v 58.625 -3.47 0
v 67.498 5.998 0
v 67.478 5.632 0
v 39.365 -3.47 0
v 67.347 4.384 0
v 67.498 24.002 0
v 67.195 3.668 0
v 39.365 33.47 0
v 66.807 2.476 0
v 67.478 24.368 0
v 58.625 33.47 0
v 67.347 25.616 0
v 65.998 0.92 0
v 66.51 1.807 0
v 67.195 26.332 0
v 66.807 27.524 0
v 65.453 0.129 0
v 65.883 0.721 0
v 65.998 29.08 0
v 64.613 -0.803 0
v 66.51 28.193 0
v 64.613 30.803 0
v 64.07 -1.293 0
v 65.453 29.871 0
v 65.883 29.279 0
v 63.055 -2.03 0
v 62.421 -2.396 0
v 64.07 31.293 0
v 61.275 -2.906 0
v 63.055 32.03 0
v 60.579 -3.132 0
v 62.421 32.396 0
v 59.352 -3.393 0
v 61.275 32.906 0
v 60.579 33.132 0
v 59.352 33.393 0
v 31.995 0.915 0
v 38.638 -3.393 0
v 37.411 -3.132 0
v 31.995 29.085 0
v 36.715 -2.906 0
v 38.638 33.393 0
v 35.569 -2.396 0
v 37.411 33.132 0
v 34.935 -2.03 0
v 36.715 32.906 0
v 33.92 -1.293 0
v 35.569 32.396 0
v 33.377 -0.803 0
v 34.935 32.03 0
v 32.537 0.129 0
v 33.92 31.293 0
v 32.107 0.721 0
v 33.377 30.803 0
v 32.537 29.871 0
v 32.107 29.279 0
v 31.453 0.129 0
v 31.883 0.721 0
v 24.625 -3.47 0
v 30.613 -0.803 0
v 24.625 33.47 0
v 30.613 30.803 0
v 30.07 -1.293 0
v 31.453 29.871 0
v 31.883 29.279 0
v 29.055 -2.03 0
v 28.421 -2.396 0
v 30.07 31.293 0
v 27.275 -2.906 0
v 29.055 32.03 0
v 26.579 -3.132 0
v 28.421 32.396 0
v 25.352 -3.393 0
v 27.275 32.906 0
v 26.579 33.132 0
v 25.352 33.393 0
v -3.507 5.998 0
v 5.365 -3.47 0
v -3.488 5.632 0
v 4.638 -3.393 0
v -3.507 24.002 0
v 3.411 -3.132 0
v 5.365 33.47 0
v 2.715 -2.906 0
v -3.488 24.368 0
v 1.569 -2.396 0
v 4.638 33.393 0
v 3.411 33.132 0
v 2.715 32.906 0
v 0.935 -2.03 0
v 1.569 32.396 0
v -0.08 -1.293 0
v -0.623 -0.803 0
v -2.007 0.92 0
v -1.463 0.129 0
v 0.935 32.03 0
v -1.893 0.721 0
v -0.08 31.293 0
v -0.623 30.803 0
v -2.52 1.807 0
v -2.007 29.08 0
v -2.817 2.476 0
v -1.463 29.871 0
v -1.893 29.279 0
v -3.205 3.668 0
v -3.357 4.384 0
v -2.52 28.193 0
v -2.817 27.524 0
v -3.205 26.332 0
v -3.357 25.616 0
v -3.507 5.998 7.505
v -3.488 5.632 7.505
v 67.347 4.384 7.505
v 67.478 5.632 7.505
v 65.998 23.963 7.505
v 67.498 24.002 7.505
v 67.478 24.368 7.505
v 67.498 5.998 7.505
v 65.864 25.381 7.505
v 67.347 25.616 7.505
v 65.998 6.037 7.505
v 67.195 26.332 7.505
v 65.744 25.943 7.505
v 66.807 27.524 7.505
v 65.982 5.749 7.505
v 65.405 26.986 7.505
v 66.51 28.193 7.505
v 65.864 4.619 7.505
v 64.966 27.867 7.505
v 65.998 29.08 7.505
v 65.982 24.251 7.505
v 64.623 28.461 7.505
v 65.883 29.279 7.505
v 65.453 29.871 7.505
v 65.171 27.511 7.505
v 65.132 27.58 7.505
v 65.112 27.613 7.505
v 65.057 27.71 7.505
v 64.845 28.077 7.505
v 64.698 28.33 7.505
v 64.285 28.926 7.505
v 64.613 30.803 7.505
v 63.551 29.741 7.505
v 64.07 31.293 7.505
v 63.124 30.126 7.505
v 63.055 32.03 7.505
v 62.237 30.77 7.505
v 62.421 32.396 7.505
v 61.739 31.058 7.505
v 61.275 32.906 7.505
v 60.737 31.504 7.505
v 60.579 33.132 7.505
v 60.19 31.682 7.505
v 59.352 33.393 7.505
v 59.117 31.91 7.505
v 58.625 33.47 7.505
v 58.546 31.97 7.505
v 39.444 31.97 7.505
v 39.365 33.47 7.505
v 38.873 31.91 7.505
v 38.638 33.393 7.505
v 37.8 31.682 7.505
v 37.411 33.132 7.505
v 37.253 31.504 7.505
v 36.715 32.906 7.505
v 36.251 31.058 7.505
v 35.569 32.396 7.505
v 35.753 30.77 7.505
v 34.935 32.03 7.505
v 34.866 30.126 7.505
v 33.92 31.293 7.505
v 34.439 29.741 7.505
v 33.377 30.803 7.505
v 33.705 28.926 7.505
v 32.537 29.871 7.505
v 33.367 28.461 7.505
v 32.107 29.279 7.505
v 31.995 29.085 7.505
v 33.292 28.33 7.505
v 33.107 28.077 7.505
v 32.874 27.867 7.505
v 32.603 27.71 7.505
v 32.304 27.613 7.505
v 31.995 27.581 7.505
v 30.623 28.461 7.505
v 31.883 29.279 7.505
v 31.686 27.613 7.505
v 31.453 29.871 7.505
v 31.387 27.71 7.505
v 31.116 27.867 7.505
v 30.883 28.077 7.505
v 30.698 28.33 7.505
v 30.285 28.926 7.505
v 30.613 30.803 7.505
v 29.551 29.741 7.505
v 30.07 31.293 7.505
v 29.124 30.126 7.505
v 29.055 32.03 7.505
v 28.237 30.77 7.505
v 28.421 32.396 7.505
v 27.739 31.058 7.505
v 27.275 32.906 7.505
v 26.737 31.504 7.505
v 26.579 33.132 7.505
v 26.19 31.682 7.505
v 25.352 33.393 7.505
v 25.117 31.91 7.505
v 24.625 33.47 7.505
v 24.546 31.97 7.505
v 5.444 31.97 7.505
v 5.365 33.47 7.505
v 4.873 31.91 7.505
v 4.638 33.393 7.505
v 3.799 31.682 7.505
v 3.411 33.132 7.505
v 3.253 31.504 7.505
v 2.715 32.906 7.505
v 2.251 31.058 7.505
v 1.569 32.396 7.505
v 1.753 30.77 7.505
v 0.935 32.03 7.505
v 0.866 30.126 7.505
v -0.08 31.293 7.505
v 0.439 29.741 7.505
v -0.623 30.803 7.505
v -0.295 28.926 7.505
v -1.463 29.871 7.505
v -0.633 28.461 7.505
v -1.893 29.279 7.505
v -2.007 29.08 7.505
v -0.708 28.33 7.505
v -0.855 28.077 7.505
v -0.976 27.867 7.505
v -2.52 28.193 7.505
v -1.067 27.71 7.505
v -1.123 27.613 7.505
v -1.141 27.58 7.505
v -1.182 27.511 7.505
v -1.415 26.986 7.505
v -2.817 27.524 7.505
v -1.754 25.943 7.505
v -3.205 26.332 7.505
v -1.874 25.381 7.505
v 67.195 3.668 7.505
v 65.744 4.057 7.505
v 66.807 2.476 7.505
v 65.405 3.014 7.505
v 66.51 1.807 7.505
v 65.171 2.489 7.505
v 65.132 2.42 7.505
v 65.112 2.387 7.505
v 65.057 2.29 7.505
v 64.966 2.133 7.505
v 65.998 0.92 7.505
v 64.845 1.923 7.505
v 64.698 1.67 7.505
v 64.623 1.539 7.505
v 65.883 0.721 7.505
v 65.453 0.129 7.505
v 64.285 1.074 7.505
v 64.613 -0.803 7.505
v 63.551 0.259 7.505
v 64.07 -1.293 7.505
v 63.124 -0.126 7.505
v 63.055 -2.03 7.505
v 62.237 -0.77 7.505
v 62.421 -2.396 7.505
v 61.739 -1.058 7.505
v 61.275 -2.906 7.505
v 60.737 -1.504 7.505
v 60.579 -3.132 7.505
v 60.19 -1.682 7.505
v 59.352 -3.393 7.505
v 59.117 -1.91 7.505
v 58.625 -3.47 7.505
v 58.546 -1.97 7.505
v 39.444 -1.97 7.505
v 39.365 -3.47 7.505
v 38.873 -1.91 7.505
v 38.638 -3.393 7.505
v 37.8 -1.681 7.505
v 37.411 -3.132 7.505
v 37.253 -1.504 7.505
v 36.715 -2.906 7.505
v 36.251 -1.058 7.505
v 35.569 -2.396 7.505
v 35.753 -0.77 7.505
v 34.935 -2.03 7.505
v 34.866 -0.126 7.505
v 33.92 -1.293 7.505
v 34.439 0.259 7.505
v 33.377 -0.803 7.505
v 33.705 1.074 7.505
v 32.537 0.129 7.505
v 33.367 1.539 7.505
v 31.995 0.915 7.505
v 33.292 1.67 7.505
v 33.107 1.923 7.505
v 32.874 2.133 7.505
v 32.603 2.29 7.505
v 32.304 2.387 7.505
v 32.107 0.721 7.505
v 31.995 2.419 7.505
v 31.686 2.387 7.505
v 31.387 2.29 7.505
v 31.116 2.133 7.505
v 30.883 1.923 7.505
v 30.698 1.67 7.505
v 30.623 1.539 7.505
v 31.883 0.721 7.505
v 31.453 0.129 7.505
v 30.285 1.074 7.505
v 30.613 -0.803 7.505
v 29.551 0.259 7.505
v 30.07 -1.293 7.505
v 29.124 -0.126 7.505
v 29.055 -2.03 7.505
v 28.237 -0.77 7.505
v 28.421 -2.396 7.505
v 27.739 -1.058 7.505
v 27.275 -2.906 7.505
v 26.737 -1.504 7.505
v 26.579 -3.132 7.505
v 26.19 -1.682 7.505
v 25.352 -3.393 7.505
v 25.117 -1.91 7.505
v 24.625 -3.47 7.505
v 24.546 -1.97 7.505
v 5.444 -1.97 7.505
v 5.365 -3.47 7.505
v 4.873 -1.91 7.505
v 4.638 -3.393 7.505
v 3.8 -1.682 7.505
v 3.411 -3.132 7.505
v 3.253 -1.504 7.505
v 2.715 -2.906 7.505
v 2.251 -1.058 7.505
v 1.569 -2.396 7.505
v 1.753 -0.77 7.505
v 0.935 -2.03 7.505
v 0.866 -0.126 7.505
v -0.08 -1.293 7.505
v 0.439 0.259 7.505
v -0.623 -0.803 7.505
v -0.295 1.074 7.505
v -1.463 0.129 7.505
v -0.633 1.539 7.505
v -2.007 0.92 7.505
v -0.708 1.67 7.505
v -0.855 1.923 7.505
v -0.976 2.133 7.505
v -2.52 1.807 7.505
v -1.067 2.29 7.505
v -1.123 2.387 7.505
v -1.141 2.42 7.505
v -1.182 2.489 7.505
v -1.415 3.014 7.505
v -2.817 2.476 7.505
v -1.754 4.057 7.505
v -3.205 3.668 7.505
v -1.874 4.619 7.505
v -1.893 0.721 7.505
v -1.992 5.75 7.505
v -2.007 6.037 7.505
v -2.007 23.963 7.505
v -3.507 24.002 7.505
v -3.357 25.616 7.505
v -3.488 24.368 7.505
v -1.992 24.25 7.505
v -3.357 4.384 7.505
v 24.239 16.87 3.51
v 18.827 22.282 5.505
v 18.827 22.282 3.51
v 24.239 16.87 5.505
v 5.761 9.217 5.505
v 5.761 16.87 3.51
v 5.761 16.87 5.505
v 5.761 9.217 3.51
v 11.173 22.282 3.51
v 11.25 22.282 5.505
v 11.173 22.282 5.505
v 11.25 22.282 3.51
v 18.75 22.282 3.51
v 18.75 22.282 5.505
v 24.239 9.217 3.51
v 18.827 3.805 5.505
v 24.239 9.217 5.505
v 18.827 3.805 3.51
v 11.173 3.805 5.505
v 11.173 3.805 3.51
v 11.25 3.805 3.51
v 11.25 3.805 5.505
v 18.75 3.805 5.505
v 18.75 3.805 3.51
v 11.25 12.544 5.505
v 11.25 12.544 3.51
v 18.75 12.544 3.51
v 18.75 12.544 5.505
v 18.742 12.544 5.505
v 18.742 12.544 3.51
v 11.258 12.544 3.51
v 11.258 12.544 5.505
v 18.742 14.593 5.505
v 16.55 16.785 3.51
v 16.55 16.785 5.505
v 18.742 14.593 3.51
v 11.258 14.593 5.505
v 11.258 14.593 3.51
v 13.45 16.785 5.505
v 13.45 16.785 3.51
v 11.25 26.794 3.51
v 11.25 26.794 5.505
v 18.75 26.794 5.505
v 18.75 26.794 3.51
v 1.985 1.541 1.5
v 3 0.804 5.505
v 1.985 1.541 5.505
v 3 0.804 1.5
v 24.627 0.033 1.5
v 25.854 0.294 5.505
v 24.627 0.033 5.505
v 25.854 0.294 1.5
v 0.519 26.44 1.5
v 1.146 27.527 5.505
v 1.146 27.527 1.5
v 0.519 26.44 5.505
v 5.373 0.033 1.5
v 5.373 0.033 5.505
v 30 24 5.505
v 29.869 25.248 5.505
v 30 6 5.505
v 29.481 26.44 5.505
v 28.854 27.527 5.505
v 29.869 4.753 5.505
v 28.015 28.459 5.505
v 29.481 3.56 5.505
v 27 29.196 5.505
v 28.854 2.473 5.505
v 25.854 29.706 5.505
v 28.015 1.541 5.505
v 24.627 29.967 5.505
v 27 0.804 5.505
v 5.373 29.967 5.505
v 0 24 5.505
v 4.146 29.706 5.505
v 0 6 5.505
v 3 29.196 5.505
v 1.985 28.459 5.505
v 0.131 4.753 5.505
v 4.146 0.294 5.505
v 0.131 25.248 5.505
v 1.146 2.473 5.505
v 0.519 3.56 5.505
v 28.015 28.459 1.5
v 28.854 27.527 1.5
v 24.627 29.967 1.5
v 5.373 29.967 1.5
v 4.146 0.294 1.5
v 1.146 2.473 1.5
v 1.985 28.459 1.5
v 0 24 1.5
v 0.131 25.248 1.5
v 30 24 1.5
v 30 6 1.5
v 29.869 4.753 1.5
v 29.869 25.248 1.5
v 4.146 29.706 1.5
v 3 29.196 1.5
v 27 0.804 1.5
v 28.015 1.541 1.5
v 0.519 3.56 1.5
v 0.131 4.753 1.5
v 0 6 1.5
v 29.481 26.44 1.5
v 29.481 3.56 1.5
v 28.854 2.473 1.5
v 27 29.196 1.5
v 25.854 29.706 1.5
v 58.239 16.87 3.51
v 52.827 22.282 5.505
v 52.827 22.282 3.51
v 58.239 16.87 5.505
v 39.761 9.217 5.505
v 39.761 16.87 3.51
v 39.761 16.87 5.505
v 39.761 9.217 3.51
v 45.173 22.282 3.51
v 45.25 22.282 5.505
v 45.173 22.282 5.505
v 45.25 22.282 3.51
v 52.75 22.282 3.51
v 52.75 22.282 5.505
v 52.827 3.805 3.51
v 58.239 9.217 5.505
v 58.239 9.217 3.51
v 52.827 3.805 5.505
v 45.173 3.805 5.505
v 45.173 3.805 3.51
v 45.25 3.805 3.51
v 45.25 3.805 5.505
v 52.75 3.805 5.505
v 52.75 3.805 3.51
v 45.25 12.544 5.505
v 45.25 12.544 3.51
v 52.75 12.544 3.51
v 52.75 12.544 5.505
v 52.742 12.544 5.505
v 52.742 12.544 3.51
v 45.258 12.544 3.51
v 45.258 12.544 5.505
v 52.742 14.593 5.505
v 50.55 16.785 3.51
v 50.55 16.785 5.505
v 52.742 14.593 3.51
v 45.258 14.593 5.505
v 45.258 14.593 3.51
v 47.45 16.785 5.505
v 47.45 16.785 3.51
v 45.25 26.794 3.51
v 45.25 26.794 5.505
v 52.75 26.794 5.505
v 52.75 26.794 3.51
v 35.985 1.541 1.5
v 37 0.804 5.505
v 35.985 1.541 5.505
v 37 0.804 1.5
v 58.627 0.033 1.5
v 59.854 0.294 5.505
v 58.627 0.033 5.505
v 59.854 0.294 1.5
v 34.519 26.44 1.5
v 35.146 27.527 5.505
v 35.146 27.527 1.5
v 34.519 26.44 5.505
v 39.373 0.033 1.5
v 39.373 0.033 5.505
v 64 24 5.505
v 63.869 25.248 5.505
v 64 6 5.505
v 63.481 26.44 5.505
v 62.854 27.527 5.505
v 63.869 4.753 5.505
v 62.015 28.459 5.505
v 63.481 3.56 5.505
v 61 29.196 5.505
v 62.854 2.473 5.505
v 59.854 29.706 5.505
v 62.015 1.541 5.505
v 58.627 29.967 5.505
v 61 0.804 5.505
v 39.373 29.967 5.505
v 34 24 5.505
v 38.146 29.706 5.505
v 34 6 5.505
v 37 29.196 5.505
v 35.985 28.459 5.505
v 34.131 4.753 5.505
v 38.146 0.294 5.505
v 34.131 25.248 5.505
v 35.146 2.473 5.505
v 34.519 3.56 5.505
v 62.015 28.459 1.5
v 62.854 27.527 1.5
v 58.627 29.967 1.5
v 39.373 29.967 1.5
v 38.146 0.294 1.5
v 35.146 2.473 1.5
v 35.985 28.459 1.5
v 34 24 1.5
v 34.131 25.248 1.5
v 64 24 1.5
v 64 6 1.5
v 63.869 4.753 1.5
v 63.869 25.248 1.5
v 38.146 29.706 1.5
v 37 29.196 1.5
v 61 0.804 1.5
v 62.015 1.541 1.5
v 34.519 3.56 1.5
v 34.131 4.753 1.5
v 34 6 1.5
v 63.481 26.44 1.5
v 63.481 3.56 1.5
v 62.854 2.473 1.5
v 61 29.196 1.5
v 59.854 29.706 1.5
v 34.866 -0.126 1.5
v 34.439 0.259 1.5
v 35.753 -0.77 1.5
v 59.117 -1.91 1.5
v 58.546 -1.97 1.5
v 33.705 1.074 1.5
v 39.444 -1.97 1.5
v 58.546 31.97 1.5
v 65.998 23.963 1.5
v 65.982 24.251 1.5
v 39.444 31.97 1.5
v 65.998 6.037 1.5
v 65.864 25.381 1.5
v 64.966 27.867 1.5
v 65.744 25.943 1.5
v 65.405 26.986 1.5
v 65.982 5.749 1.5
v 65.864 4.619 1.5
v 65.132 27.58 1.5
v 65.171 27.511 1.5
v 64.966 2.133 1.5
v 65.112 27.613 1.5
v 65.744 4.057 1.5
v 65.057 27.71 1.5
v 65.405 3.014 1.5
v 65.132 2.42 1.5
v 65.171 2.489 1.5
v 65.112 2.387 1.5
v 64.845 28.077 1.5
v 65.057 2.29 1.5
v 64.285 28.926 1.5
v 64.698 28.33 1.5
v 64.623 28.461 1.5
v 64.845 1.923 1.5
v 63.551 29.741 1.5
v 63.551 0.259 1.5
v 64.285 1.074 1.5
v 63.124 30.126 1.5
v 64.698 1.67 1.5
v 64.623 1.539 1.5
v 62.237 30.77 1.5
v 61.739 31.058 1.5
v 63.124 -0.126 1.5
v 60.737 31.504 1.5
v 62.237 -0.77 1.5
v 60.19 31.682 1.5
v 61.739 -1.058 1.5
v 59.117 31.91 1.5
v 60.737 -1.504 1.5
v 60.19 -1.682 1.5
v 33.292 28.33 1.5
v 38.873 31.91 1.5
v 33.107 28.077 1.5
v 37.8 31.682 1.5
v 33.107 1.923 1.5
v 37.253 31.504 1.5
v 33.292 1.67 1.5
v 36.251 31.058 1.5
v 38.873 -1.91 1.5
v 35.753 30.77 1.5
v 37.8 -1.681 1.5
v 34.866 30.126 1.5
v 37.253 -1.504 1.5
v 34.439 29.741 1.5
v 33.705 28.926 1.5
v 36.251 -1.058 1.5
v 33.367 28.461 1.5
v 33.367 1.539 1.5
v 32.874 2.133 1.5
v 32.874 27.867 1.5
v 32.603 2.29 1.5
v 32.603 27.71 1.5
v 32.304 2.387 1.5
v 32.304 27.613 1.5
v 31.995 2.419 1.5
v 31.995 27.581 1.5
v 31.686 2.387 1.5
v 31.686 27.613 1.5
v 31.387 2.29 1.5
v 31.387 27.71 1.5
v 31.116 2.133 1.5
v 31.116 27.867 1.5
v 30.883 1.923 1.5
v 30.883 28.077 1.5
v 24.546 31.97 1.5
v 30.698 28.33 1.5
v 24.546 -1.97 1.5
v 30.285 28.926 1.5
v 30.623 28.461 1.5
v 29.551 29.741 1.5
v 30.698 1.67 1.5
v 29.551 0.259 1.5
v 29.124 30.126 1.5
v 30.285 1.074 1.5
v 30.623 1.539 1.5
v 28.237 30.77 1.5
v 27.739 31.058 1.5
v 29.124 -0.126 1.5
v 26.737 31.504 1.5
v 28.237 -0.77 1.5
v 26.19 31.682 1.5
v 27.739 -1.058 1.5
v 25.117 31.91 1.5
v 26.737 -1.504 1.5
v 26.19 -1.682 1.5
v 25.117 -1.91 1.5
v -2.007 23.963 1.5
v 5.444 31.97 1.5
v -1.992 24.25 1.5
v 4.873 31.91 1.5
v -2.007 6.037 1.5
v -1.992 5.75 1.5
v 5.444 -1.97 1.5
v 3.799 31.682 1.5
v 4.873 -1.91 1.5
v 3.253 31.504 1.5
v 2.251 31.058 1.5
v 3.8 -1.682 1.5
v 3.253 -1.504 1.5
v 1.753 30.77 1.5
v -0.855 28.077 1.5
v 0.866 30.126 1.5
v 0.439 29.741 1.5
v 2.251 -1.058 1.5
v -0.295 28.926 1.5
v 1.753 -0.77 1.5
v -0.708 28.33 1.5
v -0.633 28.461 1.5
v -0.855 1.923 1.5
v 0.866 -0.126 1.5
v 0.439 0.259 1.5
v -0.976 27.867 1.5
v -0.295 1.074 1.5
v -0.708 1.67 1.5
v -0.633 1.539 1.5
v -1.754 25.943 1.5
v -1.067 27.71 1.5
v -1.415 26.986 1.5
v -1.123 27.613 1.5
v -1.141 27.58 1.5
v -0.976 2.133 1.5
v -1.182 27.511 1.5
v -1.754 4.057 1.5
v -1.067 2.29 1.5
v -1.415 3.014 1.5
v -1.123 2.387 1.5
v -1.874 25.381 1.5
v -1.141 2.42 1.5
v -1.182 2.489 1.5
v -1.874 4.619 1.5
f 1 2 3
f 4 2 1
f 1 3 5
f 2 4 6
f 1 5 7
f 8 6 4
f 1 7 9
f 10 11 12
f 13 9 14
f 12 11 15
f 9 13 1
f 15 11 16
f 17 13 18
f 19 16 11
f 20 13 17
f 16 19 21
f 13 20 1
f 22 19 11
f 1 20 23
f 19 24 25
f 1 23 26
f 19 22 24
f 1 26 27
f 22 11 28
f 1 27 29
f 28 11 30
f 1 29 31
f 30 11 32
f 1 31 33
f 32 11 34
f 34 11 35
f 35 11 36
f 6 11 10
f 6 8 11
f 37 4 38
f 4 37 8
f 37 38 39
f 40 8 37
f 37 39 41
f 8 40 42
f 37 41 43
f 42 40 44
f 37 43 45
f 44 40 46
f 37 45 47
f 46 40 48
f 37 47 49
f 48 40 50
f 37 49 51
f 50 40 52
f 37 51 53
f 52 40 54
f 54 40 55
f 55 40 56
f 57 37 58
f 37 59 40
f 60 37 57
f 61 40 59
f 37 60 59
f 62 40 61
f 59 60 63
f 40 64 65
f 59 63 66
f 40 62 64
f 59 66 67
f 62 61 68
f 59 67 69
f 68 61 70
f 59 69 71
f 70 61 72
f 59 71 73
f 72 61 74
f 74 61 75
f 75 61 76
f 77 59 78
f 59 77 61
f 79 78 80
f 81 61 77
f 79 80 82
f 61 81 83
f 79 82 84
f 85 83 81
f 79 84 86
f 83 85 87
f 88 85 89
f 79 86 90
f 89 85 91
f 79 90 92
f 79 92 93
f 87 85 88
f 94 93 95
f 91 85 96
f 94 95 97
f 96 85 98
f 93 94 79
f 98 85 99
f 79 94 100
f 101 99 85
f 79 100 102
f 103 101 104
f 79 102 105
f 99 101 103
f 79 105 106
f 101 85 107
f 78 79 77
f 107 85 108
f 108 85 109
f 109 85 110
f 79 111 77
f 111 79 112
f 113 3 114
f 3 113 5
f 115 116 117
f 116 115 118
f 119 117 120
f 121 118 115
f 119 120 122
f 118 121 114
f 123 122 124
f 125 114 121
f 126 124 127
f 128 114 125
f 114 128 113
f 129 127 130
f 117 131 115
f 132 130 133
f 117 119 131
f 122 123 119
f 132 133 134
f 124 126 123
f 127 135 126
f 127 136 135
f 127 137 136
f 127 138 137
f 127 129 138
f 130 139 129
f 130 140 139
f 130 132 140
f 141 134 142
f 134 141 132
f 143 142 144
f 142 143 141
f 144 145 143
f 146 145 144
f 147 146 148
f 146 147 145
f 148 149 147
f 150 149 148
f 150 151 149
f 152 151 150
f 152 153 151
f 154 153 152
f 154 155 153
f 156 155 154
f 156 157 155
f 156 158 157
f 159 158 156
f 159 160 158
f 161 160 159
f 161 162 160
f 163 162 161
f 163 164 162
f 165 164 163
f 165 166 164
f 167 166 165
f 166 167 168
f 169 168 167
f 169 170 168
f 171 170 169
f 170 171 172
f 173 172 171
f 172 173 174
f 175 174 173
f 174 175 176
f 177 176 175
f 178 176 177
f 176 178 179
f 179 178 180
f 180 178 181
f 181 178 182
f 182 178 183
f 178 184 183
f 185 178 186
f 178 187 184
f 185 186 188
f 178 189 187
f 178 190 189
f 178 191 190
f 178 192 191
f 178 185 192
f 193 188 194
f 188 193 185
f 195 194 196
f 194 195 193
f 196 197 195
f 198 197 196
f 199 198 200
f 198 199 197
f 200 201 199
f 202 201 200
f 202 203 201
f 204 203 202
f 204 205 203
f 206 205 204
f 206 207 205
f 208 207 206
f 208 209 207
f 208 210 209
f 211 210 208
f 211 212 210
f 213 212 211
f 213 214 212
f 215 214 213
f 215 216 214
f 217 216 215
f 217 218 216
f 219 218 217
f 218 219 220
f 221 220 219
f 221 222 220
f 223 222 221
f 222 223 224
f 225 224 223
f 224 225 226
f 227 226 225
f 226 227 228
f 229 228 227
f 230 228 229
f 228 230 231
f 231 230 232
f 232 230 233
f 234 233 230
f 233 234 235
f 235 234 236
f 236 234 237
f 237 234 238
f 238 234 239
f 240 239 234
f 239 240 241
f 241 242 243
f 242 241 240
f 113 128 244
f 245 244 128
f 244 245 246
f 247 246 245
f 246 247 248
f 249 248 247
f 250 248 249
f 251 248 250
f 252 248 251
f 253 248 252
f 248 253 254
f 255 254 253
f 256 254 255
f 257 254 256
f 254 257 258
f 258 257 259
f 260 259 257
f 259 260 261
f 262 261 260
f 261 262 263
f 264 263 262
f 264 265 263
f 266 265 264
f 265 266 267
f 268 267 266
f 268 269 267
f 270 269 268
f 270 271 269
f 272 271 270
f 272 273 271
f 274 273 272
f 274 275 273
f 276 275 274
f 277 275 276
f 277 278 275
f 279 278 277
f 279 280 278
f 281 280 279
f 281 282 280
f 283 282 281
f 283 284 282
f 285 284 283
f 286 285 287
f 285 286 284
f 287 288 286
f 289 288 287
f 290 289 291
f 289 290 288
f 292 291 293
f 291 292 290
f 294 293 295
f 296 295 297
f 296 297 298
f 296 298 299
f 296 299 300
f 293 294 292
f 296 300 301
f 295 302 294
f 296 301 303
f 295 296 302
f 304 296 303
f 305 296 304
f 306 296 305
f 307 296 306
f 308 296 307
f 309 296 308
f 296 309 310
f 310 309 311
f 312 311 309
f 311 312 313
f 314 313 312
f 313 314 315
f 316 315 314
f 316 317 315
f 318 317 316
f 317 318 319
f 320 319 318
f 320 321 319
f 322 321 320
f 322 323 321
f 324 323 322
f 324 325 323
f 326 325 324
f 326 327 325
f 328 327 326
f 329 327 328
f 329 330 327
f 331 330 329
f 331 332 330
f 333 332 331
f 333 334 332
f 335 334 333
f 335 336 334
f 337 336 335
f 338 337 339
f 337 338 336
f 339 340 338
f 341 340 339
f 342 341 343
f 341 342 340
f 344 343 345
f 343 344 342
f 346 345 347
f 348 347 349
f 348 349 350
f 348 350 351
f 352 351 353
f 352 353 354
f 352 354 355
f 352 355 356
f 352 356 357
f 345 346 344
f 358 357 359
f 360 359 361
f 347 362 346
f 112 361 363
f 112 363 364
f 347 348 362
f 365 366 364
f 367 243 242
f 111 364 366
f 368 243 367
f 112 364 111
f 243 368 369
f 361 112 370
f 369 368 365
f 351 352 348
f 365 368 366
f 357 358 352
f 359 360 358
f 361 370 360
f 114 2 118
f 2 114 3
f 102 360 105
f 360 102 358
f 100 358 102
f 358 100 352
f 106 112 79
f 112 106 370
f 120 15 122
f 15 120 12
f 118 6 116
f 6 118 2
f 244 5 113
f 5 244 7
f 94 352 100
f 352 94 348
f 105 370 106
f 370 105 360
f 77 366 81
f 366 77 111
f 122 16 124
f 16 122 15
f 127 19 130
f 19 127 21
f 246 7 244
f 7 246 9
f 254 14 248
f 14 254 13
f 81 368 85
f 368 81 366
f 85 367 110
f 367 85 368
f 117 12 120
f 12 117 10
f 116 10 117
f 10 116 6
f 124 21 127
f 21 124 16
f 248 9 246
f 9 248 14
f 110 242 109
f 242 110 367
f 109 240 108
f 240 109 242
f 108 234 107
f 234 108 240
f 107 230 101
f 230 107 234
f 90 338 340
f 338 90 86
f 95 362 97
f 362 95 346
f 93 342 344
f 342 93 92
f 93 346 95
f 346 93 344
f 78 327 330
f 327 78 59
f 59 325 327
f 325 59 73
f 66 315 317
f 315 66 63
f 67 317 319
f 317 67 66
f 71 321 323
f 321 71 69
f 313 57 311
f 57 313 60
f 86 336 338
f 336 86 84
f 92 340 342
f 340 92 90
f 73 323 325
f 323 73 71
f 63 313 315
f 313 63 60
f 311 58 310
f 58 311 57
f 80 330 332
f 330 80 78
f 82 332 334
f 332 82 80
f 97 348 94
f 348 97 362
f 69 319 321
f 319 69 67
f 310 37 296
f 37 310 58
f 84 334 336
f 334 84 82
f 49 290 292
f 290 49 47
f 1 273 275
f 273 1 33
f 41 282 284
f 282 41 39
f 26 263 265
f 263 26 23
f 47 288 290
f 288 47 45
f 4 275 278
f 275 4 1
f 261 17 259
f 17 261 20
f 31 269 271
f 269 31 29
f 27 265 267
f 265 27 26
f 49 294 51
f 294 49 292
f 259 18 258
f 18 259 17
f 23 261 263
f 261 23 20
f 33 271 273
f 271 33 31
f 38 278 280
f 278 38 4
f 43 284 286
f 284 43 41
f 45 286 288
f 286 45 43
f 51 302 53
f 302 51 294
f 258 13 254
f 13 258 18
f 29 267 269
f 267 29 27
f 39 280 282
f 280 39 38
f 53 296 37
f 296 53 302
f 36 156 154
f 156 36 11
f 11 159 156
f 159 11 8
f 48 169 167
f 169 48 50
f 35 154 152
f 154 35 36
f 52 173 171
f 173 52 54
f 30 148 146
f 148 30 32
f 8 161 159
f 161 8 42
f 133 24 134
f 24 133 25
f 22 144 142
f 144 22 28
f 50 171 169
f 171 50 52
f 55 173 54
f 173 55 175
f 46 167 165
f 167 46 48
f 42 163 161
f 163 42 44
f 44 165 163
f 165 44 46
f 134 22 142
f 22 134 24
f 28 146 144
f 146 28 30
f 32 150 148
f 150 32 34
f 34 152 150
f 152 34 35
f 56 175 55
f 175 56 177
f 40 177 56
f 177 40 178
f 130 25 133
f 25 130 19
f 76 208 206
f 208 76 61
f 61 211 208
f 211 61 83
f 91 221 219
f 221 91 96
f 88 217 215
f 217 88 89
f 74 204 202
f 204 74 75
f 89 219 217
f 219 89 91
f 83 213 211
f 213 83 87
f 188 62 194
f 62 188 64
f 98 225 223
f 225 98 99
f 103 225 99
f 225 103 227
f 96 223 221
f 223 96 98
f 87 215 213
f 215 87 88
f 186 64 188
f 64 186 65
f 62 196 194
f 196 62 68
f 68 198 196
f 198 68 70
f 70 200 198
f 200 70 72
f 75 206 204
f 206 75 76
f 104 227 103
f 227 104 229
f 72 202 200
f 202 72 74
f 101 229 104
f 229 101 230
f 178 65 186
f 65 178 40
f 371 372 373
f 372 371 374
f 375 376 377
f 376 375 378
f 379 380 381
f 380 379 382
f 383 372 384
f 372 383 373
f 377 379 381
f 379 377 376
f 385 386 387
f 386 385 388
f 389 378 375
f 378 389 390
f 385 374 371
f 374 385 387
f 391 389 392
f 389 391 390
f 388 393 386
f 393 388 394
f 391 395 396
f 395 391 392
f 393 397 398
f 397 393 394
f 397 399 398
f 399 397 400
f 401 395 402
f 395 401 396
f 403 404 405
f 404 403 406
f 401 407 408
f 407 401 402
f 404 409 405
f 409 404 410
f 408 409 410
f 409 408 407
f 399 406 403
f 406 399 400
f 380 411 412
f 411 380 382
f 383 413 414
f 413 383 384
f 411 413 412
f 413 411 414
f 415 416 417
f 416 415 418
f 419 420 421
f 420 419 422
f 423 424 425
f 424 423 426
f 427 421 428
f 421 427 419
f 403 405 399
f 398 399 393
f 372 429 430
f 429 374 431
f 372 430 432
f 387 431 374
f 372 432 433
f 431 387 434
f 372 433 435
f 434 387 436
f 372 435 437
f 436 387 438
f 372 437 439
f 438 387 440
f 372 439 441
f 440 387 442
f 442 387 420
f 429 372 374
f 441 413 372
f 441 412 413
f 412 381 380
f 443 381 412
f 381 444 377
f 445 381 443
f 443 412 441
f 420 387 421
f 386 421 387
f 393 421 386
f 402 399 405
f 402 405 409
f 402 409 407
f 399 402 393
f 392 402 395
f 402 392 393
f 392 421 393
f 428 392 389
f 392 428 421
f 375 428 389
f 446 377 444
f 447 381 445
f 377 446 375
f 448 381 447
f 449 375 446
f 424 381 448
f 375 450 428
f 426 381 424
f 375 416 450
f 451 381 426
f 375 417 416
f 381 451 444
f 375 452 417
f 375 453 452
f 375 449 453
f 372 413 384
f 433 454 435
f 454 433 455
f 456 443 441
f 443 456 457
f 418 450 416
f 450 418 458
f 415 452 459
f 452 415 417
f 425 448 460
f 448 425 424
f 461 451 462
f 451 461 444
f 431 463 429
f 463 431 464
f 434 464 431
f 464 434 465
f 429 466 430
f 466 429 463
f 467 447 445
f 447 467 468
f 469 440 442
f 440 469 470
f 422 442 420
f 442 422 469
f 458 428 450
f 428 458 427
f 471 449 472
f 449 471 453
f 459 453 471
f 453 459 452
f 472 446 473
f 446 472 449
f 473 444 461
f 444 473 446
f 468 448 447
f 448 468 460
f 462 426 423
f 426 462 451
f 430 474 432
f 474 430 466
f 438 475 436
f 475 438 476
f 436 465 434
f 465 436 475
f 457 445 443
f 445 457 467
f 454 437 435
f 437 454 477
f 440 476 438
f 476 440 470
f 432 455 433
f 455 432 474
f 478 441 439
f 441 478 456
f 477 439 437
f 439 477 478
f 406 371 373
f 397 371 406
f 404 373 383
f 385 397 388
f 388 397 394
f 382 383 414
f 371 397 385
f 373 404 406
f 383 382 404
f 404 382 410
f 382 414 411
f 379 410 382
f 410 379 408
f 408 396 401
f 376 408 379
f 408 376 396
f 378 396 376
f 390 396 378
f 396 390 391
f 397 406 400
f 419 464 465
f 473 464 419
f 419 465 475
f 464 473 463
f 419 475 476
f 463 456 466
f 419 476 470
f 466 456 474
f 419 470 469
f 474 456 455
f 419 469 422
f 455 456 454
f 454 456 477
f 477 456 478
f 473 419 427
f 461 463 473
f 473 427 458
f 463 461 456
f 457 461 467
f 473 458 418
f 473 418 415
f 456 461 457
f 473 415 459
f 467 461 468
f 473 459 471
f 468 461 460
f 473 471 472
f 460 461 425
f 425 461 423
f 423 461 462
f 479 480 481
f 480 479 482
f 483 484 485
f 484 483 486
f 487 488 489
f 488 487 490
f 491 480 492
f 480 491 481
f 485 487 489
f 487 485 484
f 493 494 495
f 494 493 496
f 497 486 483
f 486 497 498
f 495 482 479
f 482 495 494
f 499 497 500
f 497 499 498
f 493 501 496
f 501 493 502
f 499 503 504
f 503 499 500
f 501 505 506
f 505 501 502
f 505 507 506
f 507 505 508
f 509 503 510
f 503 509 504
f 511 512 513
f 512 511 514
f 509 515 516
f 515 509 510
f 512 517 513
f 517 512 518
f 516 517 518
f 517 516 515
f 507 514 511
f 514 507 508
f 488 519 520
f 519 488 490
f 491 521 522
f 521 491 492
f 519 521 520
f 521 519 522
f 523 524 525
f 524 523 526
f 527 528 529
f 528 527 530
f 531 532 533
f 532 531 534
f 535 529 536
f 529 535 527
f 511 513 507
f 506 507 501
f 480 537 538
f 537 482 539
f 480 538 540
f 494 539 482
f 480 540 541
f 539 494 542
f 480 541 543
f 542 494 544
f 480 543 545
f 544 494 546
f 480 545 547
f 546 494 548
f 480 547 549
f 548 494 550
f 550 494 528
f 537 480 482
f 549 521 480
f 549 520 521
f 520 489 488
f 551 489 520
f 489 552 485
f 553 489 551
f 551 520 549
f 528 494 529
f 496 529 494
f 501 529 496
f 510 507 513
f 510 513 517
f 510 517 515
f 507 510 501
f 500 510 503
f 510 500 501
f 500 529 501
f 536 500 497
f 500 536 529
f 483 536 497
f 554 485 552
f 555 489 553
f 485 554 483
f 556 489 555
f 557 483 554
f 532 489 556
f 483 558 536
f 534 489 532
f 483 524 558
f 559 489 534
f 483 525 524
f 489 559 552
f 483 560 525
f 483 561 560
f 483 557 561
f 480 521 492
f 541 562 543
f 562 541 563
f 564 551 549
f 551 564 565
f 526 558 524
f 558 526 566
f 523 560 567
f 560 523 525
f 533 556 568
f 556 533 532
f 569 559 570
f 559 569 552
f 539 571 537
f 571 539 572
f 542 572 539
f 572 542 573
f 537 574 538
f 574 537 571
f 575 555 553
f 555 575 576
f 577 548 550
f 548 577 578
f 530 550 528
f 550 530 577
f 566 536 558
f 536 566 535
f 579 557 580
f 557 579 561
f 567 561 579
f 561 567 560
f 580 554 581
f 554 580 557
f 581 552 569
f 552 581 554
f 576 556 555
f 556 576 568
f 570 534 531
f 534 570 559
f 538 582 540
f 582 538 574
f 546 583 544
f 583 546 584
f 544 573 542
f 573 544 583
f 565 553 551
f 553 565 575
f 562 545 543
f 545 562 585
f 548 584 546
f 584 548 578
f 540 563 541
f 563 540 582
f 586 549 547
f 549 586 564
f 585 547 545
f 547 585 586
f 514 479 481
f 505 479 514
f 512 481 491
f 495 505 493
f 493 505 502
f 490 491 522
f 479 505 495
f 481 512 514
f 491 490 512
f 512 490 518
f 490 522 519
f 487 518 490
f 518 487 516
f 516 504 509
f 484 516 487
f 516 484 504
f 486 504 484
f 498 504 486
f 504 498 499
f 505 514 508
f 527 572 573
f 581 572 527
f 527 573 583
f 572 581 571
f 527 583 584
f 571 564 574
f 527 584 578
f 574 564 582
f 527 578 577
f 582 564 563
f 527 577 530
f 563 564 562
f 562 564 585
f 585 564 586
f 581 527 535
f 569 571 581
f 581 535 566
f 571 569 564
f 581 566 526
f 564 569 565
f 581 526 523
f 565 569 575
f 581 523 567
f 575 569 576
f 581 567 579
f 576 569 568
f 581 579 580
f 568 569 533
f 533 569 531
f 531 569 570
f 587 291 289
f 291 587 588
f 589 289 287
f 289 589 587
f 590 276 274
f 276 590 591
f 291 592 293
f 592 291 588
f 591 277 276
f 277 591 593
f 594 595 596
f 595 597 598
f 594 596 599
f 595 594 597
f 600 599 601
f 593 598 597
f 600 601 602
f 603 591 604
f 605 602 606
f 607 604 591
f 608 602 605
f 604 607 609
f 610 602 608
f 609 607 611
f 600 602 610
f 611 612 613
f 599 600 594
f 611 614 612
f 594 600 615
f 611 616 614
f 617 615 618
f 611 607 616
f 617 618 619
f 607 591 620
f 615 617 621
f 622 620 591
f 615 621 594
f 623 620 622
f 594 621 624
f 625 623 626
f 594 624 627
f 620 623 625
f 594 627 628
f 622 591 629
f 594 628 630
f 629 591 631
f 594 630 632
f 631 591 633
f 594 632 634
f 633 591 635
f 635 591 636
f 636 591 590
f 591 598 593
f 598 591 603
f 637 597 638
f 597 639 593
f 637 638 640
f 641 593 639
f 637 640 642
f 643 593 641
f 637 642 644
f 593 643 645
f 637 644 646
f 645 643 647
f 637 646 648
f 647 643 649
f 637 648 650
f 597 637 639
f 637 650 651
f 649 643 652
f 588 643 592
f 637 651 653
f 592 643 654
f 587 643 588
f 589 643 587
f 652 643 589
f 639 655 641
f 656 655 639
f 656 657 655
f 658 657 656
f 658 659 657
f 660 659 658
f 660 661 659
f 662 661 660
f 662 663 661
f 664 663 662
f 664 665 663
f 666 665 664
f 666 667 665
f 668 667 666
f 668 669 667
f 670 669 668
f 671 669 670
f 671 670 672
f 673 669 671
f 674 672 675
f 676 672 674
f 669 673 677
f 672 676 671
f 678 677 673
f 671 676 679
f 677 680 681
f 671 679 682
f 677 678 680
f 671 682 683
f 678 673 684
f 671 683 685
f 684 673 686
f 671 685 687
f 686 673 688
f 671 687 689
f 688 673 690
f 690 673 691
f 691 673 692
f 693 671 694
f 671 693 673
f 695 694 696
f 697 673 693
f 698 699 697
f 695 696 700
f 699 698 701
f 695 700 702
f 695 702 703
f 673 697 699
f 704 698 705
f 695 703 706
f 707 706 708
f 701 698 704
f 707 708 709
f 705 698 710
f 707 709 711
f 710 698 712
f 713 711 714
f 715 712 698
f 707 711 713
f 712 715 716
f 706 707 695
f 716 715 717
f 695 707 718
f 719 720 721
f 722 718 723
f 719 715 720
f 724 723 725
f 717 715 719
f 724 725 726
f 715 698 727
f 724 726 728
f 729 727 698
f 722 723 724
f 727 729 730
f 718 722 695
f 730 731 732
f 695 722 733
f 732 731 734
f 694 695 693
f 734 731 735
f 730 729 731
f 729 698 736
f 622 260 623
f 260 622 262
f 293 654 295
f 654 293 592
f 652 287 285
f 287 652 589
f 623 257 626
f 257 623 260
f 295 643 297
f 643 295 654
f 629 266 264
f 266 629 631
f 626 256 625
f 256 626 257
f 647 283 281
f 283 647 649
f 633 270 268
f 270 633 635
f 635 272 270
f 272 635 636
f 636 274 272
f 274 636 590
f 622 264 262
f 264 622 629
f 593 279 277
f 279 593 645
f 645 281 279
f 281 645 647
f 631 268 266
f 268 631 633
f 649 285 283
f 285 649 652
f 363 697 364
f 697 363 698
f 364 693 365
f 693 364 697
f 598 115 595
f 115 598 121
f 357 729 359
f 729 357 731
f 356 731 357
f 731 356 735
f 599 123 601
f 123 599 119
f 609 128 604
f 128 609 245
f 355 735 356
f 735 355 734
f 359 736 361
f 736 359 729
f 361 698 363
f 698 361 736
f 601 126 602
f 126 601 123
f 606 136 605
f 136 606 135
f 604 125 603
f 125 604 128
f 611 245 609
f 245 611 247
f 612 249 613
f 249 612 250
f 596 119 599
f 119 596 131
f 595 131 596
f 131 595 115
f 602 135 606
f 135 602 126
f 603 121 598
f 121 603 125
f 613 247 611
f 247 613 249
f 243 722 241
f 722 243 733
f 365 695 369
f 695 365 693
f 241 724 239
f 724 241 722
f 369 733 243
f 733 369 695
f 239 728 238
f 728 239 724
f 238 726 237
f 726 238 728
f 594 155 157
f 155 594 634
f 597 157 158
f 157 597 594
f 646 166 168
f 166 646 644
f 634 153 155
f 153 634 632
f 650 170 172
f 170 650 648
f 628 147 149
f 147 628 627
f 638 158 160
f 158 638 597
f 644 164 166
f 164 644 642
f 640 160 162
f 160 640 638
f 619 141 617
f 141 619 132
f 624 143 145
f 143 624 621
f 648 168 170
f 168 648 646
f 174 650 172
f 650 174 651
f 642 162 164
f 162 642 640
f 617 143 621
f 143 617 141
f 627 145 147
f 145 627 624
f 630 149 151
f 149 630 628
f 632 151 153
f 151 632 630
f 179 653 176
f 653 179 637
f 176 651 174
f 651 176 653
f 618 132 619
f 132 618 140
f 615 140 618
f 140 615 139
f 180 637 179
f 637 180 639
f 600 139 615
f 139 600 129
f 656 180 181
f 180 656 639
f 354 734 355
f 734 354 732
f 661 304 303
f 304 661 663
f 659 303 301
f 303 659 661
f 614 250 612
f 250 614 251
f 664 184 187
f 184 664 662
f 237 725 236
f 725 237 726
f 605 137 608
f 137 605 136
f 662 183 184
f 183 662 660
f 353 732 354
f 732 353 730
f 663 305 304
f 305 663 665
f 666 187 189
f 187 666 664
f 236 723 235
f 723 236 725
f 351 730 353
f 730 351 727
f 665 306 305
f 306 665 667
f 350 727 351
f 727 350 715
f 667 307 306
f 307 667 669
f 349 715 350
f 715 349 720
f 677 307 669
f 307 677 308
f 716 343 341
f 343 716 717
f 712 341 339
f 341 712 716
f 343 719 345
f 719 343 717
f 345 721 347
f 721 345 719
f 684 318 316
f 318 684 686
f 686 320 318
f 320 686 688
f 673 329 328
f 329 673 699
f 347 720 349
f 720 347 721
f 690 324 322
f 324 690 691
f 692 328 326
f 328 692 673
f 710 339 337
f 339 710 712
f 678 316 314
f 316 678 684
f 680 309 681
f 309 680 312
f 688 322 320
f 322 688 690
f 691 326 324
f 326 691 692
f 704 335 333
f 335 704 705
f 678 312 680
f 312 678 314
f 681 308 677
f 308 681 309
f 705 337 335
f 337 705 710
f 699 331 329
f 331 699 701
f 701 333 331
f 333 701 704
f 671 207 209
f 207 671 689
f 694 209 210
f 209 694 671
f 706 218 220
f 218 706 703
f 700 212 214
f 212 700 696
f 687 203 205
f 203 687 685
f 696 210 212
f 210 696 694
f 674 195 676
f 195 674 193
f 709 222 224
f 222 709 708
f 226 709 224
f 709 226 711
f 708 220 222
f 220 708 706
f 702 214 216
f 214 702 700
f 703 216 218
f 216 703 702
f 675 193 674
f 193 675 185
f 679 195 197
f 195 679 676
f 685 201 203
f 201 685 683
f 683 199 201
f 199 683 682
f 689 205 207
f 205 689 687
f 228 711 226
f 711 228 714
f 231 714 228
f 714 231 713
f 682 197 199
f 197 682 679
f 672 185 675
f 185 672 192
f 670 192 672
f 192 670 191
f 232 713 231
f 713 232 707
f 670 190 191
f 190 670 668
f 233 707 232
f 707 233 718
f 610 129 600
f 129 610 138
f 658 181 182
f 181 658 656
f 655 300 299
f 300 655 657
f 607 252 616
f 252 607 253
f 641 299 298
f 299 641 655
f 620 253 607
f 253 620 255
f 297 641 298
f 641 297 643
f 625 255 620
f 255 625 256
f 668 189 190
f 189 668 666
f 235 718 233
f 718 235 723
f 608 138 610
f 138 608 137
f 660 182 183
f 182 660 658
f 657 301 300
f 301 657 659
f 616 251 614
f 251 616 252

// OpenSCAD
// file: ../mould-master.scad
/*
 * openscad mould/master library
 * Copyright 2016 Mark Hindess
 *
 * This work is licensed under a Creative Commons
 * Attribution-ShareAlike 4.0 International License.
 */

epsilon = 0.005; // make this too small and rounding breaks height_helper()

module master(master_thickness = 1.5, mould_thickness = 2) {
  translate([0, 0, master_thickness]) {
    children();
  }
  difference() {
    outer(master_thickness, mould_thickness) children();
    translate([0, 0, master_thickness]) {
      inner(master_thickness, mould_thickness) children();
    }
  }
}

module mould(master_thickness = 1.5, mould_thickness = 2) {
  difference() {
    inner(master_thickness, mould_thickness) children();
    translate([0, 0, -epsilon]) children();
  }
}

module outer(master_thickness = 1.5, mould_thickness = 2) {
  minkowski() {
    height_helper() children();
    linear_extrude(height = master_thickness+mould_thickness) {
      offset(r = master_thickness+mould_thickness) projection() children();
    }
  }
}

module inner(master_thickness = 1.5, mould_thickness = 2) {
  minkowski() {
    height_helper() children();
    linear_extrude(height = mould_thickness + epsilon) {
      offset(r = -master_thickness) {
        offset(r = master_thickness+mould_thickness) {
          projection() children();
        }
      }
    }
  }
}

/*
 * height_helper() produces a cube([epsilon, epsilon, height-of-child]);
 * centered in x and y at the origin. The default epsilon is 0.001. The
 * height of the child is worked out by using projections of the first
 * child object.
 */
module height_helper() {
  translate([-epsilon/2, -epsilon/2, 0]) {
    rotate([-90,0,0]) {
      linear_extrude(height = epsilon) {
        projection() {
          rotate([0,-90,0]) {
            linear_extrude(height = epsilon) {
              projection() {
                rotate([90,0,0]) children();
              }
            }
          }
        }
      }
    }
  }
}
// main file
/*
 * openscad So Make It chocolate master for silicone mould
 * Copyright 2016 Mark Hindess
 *
 * This work is licensed under a Creative Commons
 * Attribution-ShareAlike 4.0 International License.
 */

use <../mould-master.scad>

thickness = 2; // thickness used for base and logo so total is thickness x 2
size = 30; // length of side of chocolate
corner_radius = 6; // roundness of corners
$fn = 30; // make corners smoother

// render a mould master with two chocolates next to each other
master() chocs();

// a mould shape for debugging
%translate([0, -10, 6]) {
  rotate([180, 0, 0]) mould() chocs();
}

// two chocolates next to each other
module chocs() {
  choc();
  translate([size+4, 0, 0]) choc();
}

// choc() is a base with the So Make It logo on top
module choc() {
  translate([0, 0, (thickness+0.01)/2]) {
    hull() {
      translate([corner_radius, corner_radius, 0])
        cylinder(r = corner_radius, h = thickness+0.01, center = true);
      translate([size-corner_radius, corner_radius, 0])
        cylinder(r = corner_radius, h = thickness+0.01, center = true);
      translate([size-corner_radius, size-corner_radius, 0])
        cylinder(r = corner_radius, h = thickness+0.01, center = true);
      translate([corner_radius, size-corner_radius, 0])
        cylinder(r = corner_radius, h = thickness+0.01, center = true);
    }
    translate([0,0,thickness]) {
      logo();
    }
  }
}

// logo() is the So Make It logo
module logo() {
  difference() {
    hull() {
      translate([corner_radius, corner_radius, 0])
        cylinder(r = corner_radius, h = thickness, center = true);
      translate([size-corner_radius, corner_radius, 0])
        cylinder(r = corner_radius, h = thickness, center = true);
      translate([size-corner_radius, size-corner_radius, 0])
        cylinder(r = corner_radius, h = thickness, center = true);
      translate([corner_radius, size-corner_radius, 0])
        cylinder(r = corner_radius, h = thickness, center = true);
    }
    translate([size/2, size/2.3, 0]) {
      difference() {
        rotate([0,0,22.5])
          cylinder(r = size/3, h = thickness+2, center = true, $fn = 8);
        translate([0,-(1+size/6),-1])
          cube([size/4, 1+size/3, thickness+3], center = true);
        rotate([0,0,22.5])
          cylinder(r = 1.08*size/8, h = thickness+3, $fn = 8, center = true);
      }
      translate([0,size/3,-1])
        cube([size/4, size/4, thickness+3], center = true);
    }
  }
}
